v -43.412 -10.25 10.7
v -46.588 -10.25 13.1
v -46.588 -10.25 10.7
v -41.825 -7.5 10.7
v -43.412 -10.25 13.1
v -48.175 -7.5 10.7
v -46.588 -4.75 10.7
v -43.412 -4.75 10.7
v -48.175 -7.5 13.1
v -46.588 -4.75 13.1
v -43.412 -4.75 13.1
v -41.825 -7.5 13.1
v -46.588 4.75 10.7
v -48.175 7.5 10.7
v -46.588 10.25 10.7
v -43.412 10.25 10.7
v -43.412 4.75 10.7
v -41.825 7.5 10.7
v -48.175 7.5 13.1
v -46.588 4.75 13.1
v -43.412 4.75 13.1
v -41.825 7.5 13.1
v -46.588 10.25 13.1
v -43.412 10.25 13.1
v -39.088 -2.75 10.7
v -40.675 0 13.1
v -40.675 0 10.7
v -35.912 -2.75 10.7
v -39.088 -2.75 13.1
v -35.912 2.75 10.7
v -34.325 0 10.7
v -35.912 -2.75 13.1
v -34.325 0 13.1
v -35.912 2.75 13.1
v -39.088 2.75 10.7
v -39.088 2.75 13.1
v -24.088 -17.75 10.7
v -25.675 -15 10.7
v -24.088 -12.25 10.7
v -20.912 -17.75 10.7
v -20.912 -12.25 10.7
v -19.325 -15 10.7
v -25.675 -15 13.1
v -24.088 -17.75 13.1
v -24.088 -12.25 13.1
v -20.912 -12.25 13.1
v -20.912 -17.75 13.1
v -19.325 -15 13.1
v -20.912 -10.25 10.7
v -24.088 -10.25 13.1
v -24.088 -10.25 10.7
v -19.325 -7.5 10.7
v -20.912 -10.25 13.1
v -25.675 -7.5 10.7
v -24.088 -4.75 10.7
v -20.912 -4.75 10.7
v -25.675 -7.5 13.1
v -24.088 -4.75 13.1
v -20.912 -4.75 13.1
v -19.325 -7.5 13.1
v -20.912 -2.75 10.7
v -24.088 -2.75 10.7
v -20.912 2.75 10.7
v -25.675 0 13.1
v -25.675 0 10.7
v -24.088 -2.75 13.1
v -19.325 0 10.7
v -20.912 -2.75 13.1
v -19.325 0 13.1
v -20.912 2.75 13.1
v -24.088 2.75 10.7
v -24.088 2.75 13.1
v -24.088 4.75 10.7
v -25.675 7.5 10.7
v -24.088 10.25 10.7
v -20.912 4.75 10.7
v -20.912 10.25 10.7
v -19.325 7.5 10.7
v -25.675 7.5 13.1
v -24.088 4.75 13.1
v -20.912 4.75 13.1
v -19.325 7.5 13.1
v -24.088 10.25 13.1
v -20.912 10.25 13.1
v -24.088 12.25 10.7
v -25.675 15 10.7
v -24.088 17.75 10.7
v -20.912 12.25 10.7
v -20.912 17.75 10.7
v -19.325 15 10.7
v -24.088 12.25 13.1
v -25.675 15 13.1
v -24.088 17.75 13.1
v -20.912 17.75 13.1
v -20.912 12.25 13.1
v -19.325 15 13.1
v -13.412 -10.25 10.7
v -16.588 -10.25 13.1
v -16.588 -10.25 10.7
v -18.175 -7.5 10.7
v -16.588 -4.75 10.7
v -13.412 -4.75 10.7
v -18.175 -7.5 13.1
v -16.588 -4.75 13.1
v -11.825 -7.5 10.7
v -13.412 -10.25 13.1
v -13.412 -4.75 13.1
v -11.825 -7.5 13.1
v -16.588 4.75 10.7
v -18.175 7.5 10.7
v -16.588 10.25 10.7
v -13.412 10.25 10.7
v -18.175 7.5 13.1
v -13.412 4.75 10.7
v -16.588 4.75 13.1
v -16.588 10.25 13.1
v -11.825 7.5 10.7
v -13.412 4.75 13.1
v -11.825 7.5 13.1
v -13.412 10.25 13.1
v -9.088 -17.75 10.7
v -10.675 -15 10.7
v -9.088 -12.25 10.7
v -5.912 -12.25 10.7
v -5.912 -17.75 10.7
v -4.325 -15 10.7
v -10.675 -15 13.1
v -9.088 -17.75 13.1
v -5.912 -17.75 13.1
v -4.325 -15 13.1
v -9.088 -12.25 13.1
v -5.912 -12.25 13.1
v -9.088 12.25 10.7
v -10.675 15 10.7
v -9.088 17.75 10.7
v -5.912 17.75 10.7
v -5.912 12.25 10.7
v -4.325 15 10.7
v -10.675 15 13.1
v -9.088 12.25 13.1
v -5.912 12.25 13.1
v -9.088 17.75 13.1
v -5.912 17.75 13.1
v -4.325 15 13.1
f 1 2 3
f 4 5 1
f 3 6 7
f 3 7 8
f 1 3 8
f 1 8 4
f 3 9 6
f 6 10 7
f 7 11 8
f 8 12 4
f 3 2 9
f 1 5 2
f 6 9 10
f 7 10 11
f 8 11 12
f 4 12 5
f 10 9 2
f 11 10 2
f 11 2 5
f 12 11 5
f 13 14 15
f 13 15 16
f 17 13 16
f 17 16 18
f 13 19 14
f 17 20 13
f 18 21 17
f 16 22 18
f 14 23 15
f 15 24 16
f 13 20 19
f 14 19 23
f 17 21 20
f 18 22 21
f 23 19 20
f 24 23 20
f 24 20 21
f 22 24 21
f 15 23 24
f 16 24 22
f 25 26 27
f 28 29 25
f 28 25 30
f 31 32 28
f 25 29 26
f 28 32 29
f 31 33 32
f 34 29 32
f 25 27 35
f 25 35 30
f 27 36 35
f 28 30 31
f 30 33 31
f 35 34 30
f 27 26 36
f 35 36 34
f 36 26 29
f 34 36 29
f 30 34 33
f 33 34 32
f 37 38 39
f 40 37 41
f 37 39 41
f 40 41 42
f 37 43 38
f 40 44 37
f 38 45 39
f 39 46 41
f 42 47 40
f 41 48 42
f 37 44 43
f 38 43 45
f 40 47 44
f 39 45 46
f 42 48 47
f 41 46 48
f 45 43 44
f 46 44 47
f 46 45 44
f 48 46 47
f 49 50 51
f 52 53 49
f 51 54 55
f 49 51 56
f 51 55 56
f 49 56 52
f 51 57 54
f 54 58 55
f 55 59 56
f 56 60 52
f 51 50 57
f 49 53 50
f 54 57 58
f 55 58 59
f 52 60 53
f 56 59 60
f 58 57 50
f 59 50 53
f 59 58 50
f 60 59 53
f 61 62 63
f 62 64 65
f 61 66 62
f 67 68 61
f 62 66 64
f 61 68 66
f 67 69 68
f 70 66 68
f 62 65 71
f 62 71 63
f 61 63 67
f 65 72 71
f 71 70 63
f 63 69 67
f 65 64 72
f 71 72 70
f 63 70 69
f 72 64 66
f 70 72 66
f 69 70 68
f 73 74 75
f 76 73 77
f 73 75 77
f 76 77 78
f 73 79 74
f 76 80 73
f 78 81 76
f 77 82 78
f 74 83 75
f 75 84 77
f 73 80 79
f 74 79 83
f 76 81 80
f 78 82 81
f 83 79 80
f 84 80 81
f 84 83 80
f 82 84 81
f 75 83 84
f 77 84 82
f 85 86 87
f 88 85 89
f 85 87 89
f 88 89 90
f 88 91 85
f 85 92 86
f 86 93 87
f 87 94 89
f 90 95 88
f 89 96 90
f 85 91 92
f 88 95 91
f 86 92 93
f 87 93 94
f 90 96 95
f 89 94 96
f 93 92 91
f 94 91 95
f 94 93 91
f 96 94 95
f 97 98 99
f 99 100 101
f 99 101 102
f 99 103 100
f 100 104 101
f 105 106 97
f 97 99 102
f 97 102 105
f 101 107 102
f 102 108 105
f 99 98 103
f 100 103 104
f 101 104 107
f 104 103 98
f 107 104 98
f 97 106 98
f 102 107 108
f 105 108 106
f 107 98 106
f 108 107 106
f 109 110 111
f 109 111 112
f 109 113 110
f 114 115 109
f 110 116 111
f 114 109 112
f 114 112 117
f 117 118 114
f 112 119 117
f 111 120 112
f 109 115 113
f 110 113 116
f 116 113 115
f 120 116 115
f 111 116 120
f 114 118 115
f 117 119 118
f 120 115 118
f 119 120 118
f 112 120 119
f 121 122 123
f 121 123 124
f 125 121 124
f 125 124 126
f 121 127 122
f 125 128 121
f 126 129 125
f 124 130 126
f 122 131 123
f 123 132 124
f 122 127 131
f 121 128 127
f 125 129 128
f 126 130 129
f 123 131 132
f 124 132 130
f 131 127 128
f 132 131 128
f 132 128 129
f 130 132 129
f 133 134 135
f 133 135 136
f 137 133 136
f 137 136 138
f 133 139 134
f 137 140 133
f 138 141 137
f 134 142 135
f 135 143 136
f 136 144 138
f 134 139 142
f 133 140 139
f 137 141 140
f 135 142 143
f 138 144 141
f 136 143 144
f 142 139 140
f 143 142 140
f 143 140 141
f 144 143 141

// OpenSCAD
$fn = 50;

difference() {
	union() {
		translate(v = [-45.0, -7.5, 10.7]) {
			linear_extrude(height = 2.4) {
				polygon(points = [[3.1754264805429417, 0.0], [1.5877132402714713, 2.75], [-1.5877132402714702, 2.7500000000000004], [-3.1754264805429417, 3.888775875324659e-16], [-1.5877132402714722, -2.7499999999999996], [1.5877132402714687, -2.7500000000000013]]);
			}
		}
		translate(v = [-45.0, 7.5, 10.7]) {
			linear_extrude(height = 2.4) {
				polygon(points = [[3.1754264805429417, 0.0], [1.5877132402714713, 2.75], [-1.5877132402714702, 2.7500000000000004], [-3.1754264805429417, 3.888775875324659e-16], [-1.5877132402714722, -2.7499999999999996], [1.5877132402714687, -2.7500000000000013]]);
			}
		}
		translate(v = [-37.5, 0.0, 10.7]) {
			linear_extrude(height = 2.4) {
				polygon(points = [[3.1754264805429417, 0.0], [1.5877132402714713, 2.75], [-1.5877132402714702, 2.7500000000000004], [-3.1754264805429417, 3.888775875324659e-16], [-1.5877132402714722, -2.7499999999999996], [1.5877132402714687, -2.7500000000000013]]);
			}
		}
		translate(v = [-22.5, -15.0, 10.7]) {
			linear_extrude(height = 2.4) {
				polygon(points = [[3.1754264805429417, 0.0], [1.5877132402714713, 2.75], [-1.5877132402714702, 2.7500000000000004], [-3.1754264805429417, 3.888775875324659e-16], [-1.5877132402714722, -2.7499999999999996], [1.5877132402714687, -2.7500000000000013]]);
			}
		}
		translate(v = [-22.5, -7.5, 10.7]) {
			linear_extrude(height = 2.4) {
				polygon(points = [[3.1754264805429417, 0.0], [1.5877132402714713, 2.75], [-1.5877132402714702, 2.7500000000000004], [-3.1754264805429417, 3.888775875324659e-16], [-1.5877132402714722, -2.7499999999999996], [1.5877132402714687, -2.7500000000000013]]);
			}
		}
		translate(v = [-22.5, 0.0, 10.7]) {
			linear_extrude(height = 2.4) {
				polygon(points = [[3.1754264805429417, 0.0], [1.5877132402714713, 2.75], [-1.5877132402714702, 2.7500000000000004], [-3.1754264805429417, 3.888775875324659e-16], [-1.5877132402714722, -2.7499999999999996], [1.5877132402714687, -2.7500000000000013]]);
			}
		}
		translate(v = [-22.5, 7.5, 10.7]) {
			linear_extrude(height = 2.4) {
				polygon(points = [[3.1754264805429417, 0.0], [1.5877132402714713, 2.75], [-1.5877132402714702, 2.7500000000000004], [-3.1754264805429417, 3.888775875324659e-16], [-1.5877132402714722, -2.7499999999999996], [1.5877132402714687, -2.7500000000000013]]);
			}
		}
		translate(v = [-22.5, 15.0, 10.7]) {
			linear_extrude(height = 2.4) {
				polygon(points = [[3.1754264805429417, 0.0], [1.5877132402714713, 2.75], [-1.5877132402714702, 2.7500000000000004], [-3.1754264805429417, 3.888775875324659e-16], [-1.5877132402714722, -2.7499999999999996], [1.5877132402714687, -2.7500000000000013]]);
			}
		}
		translate(v = [-15.0, -7.5, 10.7]) {
			linear_extrude(height = 2.4) {
				polygon(points = [[3.1754264805429417, 0.0], [1.5877132402714713, 2.75], [-1.5877132402714702, 2.7500000000000004], [-3.1754264805429417, 3.888775875324659e-16], [-1.5877132402714722, -2.7499999999999996], [1.5877132402714687, -2.7500000000000013]]);
			}
		}
		translate(v = [-15.0, 7.5, 10.7]) {
			linear_extrude(height = 2.4) {
				polygon(points = [[3.1754264805429417, 0.0], [1.5877132402714713, 2.75], [-1.5877132402714702, 2.7500000000000004], [-3.1754264805429417, 3.888775875324659e-16], [-1.5877132402714722, -2.7499999999999996], [1.5877132402714687, -2.7500000000000013]]);
			}
		}
		translate(v = [-7.5, -15.0, 10.7]) {
			linear_extrude(height = 2.4) {
				polygon(points = [[3.1754264805429417, 0.0], [1.5877132402714713, 2.75], [-1.5877132402714702, 2.7500000000000004], [-3.1754264805429417, 3.888775875324659e-16], [-1.5877132402714722, -2.7499999999999996], [1.5877132402714687, -2.7500000000000013]]);
			}
		}
		translate(v = [-7.5, 15.0, 10.7]) {
			linear_extrude(height = 2.4) {
				polygon(points = [[3.1754264805429417, 0.0], [1.5877132402714713, 2.75], [-1.5877132402714702, 2.7500000000000004], [-3.1754264805429417, 3.888775875324659e-16], [-1.5877132402714722, -2.7499999999999996], [1.5877132402714687, -2.7500000000000013]]);
			}
		}
	}
	union();
}
